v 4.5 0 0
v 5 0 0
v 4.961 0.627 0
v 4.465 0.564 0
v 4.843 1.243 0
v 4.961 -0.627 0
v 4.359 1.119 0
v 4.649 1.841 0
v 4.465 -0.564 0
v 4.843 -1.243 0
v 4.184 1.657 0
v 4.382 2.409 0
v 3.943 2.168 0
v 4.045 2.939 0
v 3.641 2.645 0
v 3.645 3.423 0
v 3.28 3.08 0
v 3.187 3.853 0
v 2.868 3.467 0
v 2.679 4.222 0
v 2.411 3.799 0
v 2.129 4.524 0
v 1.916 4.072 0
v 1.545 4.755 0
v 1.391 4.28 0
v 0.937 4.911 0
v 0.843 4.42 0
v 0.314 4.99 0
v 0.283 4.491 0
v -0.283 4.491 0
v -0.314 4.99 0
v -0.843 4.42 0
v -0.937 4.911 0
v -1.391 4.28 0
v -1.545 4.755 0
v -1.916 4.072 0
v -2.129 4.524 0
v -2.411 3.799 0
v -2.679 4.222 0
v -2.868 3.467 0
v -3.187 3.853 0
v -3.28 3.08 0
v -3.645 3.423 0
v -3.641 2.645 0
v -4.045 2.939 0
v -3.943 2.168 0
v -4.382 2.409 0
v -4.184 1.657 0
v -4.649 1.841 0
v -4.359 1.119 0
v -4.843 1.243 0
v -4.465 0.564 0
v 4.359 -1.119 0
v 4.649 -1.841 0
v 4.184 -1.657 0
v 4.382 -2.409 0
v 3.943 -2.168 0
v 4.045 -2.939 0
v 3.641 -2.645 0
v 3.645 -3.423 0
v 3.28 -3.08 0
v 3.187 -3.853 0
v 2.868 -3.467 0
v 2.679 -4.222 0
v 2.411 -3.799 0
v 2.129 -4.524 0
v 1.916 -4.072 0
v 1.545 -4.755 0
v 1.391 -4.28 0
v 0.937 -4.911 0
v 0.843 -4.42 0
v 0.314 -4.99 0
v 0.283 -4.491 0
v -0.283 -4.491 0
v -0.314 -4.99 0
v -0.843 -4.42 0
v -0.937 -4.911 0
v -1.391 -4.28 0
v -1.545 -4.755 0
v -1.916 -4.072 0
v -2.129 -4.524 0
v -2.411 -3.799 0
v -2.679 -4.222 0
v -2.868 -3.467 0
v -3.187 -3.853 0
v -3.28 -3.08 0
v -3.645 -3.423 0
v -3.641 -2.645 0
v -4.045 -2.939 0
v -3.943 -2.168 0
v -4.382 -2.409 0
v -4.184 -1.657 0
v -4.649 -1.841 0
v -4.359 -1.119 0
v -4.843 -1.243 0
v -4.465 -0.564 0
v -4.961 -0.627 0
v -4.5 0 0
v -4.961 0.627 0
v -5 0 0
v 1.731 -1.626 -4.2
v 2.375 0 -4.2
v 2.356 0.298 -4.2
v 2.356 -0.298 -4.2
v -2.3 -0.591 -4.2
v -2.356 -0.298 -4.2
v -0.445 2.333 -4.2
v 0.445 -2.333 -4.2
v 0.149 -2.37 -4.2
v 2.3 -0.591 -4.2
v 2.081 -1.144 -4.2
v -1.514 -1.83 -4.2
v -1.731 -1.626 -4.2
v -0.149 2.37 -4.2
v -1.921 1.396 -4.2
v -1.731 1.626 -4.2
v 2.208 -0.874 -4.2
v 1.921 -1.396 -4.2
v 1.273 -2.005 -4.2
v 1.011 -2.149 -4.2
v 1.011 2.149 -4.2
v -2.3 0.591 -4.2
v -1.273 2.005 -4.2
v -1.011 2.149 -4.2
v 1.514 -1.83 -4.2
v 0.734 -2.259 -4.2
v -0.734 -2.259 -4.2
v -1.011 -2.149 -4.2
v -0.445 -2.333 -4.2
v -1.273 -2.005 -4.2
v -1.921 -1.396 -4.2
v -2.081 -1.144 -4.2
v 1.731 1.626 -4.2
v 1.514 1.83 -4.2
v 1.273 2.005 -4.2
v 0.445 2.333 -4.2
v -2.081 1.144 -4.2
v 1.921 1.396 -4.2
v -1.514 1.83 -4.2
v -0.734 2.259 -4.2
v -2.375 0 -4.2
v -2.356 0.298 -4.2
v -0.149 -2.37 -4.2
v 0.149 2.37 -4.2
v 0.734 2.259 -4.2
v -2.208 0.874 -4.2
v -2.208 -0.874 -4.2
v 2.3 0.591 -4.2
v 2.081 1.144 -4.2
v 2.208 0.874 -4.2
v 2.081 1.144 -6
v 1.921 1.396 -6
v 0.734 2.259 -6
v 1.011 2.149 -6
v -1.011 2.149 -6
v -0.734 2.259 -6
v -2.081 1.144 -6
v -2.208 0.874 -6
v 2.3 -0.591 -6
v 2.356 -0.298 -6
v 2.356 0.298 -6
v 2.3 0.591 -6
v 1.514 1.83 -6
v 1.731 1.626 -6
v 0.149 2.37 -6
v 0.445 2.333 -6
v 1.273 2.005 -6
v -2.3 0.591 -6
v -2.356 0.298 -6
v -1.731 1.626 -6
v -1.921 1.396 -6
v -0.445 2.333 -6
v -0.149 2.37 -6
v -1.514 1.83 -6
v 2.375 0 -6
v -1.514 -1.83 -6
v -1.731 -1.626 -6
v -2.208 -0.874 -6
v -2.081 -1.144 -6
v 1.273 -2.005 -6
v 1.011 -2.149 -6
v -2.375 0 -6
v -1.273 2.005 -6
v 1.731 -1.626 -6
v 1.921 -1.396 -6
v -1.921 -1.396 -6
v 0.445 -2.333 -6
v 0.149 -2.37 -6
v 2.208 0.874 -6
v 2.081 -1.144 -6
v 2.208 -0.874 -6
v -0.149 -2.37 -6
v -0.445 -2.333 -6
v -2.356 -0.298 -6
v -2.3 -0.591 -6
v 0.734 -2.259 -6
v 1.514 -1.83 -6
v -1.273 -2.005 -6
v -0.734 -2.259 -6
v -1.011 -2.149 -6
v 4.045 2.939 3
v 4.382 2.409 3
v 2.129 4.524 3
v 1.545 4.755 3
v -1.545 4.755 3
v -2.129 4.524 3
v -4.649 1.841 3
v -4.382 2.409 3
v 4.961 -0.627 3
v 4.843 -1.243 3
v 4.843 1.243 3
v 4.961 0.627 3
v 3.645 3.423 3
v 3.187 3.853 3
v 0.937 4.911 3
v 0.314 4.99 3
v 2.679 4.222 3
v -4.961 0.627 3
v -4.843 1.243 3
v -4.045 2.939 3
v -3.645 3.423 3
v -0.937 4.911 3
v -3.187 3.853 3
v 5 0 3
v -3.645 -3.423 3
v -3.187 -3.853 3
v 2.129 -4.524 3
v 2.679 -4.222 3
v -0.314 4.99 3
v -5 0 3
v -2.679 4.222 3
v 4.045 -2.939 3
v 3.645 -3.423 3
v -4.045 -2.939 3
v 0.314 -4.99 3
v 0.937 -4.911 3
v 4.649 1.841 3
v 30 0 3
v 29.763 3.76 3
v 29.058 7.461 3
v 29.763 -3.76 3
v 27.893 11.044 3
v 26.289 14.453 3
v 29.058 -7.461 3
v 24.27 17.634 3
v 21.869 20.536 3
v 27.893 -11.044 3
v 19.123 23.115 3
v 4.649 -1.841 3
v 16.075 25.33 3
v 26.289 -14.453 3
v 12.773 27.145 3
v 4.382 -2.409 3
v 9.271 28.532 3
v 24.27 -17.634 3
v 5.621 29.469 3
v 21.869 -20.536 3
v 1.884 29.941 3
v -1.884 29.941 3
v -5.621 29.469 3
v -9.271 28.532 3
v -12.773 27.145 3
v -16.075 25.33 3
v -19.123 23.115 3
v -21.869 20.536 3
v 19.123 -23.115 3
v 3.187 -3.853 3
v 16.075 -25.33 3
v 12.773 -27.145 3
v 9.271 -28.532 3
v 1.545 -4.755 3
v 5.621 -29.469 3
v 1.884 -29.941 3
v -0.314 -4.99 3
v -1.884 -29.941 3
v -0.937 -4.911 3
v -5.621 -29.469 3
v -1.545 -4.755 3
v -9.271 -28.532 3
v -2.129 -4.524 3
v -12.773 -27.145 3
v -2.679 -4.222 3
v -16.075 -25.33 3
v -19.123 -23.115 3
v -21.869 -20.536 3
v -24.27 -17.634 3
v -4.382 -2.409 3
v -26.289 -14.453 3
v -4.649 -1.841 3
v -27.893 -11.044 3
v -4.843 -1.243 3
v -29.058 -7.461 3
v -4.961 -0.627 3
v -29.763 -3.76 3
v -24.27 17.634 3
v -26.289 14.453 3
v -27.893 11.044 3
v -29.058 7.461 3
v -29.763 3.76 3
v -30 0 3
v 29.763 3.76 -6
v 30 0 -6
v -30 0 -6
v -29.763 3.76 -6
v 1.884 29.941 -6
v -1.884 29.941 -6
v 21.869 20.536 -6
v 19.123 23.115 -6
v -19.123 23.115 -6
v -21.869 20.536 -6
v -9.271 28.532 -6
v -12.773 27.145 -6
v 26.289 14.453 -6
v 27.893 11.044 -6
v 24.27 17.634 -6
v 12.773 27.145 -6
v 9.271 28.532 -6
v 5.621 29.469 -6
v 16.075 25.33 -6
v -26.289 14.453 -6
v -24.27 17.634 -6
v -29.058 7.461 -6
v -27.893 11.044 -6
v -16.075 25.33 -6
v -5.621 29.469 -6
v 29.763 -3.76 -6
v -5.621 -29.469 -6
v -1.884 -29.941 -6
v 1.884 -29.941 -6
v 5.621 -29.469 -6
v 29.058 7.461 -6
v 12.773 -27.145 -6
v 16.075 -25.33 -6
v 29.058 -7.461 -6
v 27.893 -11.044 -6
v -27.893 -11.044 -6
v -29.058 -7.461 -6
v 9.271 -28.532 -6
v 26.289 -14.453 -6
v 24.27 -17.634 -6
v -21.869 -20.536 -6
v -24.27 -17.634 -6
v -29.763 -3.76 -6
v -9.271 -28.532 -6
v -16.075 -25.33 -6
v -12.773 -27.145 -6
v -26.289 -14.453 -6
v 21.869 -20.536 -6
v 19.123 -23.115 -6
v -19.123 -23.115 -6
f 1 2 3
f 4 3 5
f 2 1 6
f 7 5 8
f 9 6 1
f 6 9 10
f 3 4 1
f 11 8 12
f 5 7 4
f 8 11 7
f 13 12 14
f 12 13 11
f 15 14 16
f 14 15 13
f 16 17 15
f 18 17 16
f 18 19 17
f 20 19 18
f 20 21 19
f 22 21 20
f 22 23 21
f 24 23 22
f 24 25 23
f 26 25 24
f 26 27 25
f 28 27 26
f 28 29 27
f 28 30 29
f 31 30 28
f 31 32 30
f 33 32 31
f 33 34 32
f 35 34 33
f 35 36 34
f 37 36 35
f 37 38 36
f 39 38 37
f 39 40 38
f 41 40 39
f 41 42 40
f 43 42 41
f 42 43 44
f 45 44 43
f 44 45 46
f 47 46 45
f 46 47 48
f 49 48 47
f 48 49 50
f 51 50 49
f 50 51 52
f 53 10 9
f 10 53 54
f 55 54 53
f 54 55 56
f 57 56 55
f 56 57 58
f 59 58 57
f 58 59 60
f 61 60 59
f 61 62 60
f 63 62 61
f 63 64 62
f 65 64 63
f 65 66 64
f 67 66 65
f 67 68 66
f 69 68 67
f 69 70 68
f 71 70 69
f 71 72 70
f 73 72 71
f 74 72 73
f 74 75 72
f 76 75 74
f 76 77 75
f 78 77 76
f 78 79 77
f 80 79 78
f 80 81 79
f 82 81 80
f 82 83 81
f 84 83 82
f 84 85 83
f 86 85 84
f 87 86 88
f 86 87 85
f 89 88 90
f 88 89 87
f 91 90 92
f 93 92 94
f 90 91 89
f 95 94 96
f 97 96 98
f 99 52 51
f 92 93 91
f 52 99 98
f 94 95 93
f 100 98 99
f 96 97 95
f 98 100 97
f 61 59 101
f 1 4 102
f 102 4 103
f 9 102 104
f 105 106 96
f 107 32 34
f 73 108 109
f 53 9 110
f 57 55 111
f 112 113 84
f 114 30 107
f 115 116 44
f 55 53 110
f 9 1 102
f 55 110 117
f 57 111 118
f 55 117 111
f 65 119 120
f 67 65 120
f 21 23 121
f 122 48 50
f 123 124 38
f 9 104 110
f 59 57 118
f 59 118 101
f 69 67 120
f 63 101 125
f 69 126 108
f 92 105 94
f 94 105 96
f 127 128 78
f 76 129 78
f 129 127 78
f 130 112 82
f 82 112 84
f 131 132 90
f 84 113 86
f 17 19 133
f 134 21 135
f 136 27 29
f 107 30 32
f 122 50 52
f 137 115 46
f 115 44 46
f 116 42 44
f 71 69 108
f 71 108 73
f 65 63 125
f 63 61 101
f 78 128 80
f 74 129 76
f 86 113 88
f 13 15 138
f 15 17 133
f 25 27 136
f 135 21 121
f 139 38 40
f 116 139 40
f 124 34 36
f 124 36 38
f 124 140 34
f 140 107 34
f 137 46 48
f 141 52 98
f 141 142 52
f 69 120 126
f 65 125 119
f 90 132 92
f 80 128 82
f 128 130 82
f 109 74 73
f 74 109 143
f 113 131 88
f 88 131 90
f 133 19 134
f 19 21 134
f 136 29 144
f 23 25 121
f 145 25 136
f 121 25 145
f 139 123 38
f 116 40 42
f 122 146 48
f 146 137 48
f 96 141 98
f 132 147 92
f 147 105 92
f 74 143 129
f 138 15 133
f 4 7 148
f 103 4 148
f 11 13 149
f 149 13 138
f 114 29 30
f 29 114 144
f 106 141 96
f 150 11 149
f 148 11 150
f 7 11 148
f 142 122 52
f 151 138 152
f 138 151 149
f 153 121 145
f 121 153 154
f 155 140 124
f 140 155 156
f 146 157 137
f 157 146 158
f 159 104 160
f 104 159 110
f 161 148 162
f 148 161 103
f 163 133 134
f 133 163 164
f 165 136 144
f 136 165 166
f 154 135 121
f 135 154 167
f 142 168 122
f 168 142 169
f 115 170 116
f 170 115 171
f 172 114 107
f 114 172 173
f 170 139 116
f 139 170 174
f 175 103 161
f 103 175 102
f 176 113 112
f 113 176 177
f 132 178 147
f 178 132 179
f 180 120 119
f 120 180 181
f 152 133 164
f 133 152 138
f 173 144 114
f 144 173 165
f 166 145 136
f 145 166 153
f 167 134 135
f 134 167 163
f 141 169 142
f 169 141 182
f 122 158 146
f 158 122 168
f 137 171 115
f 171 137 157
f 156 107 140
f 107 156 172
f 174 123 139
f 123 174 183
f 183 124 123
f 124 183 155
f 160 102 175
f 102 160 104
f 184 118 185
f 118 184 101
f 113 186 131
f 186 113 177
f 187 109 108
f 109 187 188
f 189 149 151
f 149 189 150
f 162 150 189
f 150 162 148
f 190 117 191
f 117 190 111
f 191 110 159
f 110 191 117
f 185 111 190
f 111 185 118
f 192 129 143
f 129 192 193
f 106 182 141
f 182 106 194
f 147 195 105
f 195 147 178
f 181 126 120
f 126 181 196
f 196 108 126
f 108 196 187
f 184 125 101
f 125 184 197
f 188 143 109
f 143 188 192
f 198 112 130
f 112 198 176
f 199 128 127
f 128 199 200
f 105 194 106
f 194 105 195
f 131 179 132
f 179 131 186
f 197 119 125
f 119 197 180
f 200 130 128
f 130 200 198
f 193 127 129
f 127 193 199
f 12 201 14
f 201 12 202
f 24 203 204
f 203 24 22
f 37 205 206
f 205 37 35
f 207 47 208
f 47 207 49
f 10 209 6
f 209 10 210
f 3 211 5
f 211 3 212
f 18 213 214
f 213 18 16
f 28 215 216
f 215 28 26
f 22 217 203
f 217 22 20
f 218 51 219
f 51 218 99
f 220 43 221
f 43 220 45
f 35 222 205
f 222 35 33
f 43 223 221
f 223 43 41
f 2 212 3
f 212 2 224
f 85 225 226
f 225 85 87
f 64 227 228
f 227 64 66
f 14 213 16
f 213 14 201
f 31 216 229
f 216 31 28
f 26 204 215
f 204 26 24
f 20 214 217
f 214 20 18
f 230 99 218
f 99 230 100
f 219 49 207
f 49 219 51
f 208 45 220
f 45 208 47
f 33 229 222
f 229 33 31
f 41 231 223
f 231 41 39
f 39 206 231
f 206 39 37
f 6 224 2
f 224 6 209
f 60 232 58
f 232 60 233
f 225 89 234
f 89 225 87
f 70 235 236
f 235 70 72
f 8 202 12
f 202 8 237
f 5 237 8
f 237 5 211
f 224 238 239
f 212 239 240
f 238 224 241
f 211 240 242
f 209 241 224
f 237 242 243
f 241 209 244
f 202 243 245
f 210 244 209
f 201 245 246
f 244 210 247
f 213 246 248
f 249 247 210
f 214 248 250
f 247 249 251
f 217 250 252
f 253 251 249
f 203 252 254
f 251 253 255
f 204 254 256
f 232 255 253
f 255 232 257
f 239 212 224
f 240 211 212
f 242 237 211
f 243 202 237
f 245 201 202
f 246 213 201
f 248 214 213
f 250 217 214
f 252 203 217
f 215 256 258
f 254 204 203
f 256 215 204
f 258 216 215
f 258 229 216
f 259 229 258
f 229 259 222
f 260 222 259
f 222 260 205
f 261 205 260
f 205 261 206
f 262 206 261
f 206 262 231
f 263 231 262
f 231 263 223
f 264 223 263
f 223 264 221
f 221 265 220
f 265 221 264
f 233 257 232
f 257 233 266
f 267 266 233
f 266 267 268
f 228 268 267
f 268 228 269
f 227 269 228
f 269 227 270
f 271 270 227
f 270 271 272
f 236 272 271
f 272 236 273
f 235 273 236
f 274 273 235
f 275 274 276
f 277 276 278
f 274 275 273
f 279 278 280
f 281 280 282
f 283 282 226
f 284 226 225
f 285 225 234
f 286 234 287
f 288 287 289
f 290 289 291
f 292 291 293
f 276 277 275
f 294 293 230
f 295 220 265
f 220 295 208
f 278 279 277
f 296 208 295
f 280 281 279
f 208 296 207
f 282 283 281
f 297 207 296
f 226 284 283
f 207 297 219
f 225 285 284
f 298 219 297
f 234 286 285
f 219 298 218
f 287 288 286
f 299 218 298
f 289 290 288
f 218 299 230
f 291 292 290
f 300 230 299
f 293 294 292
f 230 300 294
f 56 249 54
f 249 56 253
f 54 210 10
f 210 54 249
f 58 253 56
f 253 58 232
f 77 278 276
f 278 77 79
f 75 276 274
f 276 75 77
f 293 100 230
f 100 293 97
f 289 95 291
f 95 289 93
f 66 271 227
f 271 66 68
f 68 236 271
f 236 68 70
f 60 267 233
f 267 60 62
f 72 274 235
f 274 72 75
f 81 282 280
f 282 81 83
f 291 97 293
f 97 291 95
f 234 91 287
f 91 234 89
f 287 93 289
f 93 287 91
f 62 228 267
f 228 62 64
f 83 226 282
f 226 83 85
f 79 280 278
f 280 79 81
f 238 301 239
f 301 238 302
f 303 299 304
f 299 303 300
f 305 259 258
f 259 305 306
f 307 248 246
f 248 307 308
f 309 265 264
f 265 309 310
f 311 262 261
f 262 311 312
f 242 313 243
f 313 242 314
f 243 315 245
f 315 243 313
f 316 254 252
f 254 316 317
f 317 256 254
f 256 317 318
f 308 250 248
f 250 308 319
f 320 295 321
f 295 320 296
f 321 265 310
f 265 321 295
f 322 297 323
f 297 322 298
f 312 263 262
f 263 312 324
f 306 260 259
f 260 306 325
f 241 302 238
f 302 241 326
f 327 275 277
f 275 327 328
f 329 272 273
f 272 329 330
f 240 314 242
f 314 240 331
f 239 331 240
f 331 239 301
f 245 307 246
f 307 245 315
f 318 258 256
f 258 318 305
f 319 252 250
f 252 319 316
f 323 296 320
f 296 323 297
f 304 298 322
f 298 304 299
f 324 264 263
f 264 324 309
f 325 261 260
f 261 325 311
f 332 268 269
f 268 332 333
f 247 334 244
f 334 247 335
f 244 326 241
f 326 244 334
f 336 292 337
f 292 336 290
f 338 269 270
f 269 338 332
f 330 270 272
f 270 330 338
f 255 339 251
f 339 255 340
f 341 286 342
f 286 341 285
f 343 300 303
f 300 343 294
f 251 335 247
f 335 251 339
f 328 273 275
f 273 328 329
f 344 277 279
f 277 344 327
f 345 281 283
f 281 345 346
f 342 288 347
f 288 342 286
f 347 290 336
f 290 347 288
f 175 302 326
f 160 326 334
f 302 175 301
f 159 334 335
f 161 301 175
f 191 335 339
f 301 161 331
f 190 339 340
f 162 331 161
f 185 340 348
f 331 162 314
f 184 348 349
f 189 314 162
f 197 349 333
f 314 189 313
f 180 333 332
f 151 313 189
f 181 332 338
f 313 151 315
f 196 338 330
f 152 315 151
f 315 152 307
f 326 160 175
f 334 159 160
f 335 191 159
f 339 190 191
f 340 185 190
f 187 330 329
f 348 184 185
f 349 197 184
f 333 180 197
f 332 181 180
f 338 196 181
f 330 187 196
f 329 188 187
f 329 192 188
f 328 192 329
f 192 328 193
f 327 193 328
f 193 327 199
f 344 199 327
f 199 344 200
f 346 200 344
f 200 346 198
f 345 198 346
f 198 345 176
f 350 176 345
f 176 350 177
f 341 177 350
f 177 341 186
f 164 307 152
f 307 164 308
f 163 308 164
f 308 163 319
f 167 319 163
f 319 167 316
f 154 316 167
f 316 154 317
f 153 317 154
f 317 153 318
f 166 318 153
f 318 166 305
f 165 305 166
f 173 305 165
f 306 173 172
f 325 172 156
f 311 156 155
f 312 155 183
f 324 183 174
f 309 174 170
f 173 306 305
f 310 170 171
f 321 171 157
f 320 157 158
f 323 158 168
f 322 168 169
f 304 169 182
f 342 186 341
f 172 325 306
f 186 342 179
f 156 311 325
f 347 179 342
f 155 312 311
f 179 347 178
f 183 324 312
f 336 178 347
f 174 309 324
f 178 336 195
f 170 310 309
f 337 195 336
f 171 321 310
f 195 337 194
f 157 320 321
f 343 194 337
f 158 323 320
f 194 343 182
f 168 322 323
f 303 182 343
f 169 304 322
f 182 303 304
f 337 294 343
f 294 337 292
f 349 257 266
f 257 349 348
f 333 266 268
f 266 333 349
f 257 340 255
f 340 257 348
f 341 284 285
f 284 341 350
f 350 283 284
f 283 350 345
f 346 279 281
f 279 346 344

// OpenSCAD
$fn = 50;


difference() {
	union() {
		translate(v = [0, 0, -6.0000000000]) {
			cylinder(h = 9, r = 30.0000000000);
		}
	}
	union() {
		translate(v = [0, 0, 0]) {
			rotate(a = [0, 0, 0]) {
				difference() {
					union() {
						translate(v = [0, 0, -9.0000000000]) {
							cylinder(h = 9, r = 2.2500000000);
						}
						translate(v = [0, 0, -4.2000000000]) {
							cylinder(h = 4.2000000000, r1 = 2.3750000000, r2 = 4.5000000000);
						}
						translate(v = [0, 0, -9.0000000000]) {
							cylinder(h = 9, r = 2.3750000000);
						}
						translate(v = [0, 0, -9.0000000000]) {
							cylinder(h = 9, r = 2.2500000000);
						}
					}
					union();
				}
			}
		}
		#cylinder(h = 3, r = 5.0000000000);
	}
}
